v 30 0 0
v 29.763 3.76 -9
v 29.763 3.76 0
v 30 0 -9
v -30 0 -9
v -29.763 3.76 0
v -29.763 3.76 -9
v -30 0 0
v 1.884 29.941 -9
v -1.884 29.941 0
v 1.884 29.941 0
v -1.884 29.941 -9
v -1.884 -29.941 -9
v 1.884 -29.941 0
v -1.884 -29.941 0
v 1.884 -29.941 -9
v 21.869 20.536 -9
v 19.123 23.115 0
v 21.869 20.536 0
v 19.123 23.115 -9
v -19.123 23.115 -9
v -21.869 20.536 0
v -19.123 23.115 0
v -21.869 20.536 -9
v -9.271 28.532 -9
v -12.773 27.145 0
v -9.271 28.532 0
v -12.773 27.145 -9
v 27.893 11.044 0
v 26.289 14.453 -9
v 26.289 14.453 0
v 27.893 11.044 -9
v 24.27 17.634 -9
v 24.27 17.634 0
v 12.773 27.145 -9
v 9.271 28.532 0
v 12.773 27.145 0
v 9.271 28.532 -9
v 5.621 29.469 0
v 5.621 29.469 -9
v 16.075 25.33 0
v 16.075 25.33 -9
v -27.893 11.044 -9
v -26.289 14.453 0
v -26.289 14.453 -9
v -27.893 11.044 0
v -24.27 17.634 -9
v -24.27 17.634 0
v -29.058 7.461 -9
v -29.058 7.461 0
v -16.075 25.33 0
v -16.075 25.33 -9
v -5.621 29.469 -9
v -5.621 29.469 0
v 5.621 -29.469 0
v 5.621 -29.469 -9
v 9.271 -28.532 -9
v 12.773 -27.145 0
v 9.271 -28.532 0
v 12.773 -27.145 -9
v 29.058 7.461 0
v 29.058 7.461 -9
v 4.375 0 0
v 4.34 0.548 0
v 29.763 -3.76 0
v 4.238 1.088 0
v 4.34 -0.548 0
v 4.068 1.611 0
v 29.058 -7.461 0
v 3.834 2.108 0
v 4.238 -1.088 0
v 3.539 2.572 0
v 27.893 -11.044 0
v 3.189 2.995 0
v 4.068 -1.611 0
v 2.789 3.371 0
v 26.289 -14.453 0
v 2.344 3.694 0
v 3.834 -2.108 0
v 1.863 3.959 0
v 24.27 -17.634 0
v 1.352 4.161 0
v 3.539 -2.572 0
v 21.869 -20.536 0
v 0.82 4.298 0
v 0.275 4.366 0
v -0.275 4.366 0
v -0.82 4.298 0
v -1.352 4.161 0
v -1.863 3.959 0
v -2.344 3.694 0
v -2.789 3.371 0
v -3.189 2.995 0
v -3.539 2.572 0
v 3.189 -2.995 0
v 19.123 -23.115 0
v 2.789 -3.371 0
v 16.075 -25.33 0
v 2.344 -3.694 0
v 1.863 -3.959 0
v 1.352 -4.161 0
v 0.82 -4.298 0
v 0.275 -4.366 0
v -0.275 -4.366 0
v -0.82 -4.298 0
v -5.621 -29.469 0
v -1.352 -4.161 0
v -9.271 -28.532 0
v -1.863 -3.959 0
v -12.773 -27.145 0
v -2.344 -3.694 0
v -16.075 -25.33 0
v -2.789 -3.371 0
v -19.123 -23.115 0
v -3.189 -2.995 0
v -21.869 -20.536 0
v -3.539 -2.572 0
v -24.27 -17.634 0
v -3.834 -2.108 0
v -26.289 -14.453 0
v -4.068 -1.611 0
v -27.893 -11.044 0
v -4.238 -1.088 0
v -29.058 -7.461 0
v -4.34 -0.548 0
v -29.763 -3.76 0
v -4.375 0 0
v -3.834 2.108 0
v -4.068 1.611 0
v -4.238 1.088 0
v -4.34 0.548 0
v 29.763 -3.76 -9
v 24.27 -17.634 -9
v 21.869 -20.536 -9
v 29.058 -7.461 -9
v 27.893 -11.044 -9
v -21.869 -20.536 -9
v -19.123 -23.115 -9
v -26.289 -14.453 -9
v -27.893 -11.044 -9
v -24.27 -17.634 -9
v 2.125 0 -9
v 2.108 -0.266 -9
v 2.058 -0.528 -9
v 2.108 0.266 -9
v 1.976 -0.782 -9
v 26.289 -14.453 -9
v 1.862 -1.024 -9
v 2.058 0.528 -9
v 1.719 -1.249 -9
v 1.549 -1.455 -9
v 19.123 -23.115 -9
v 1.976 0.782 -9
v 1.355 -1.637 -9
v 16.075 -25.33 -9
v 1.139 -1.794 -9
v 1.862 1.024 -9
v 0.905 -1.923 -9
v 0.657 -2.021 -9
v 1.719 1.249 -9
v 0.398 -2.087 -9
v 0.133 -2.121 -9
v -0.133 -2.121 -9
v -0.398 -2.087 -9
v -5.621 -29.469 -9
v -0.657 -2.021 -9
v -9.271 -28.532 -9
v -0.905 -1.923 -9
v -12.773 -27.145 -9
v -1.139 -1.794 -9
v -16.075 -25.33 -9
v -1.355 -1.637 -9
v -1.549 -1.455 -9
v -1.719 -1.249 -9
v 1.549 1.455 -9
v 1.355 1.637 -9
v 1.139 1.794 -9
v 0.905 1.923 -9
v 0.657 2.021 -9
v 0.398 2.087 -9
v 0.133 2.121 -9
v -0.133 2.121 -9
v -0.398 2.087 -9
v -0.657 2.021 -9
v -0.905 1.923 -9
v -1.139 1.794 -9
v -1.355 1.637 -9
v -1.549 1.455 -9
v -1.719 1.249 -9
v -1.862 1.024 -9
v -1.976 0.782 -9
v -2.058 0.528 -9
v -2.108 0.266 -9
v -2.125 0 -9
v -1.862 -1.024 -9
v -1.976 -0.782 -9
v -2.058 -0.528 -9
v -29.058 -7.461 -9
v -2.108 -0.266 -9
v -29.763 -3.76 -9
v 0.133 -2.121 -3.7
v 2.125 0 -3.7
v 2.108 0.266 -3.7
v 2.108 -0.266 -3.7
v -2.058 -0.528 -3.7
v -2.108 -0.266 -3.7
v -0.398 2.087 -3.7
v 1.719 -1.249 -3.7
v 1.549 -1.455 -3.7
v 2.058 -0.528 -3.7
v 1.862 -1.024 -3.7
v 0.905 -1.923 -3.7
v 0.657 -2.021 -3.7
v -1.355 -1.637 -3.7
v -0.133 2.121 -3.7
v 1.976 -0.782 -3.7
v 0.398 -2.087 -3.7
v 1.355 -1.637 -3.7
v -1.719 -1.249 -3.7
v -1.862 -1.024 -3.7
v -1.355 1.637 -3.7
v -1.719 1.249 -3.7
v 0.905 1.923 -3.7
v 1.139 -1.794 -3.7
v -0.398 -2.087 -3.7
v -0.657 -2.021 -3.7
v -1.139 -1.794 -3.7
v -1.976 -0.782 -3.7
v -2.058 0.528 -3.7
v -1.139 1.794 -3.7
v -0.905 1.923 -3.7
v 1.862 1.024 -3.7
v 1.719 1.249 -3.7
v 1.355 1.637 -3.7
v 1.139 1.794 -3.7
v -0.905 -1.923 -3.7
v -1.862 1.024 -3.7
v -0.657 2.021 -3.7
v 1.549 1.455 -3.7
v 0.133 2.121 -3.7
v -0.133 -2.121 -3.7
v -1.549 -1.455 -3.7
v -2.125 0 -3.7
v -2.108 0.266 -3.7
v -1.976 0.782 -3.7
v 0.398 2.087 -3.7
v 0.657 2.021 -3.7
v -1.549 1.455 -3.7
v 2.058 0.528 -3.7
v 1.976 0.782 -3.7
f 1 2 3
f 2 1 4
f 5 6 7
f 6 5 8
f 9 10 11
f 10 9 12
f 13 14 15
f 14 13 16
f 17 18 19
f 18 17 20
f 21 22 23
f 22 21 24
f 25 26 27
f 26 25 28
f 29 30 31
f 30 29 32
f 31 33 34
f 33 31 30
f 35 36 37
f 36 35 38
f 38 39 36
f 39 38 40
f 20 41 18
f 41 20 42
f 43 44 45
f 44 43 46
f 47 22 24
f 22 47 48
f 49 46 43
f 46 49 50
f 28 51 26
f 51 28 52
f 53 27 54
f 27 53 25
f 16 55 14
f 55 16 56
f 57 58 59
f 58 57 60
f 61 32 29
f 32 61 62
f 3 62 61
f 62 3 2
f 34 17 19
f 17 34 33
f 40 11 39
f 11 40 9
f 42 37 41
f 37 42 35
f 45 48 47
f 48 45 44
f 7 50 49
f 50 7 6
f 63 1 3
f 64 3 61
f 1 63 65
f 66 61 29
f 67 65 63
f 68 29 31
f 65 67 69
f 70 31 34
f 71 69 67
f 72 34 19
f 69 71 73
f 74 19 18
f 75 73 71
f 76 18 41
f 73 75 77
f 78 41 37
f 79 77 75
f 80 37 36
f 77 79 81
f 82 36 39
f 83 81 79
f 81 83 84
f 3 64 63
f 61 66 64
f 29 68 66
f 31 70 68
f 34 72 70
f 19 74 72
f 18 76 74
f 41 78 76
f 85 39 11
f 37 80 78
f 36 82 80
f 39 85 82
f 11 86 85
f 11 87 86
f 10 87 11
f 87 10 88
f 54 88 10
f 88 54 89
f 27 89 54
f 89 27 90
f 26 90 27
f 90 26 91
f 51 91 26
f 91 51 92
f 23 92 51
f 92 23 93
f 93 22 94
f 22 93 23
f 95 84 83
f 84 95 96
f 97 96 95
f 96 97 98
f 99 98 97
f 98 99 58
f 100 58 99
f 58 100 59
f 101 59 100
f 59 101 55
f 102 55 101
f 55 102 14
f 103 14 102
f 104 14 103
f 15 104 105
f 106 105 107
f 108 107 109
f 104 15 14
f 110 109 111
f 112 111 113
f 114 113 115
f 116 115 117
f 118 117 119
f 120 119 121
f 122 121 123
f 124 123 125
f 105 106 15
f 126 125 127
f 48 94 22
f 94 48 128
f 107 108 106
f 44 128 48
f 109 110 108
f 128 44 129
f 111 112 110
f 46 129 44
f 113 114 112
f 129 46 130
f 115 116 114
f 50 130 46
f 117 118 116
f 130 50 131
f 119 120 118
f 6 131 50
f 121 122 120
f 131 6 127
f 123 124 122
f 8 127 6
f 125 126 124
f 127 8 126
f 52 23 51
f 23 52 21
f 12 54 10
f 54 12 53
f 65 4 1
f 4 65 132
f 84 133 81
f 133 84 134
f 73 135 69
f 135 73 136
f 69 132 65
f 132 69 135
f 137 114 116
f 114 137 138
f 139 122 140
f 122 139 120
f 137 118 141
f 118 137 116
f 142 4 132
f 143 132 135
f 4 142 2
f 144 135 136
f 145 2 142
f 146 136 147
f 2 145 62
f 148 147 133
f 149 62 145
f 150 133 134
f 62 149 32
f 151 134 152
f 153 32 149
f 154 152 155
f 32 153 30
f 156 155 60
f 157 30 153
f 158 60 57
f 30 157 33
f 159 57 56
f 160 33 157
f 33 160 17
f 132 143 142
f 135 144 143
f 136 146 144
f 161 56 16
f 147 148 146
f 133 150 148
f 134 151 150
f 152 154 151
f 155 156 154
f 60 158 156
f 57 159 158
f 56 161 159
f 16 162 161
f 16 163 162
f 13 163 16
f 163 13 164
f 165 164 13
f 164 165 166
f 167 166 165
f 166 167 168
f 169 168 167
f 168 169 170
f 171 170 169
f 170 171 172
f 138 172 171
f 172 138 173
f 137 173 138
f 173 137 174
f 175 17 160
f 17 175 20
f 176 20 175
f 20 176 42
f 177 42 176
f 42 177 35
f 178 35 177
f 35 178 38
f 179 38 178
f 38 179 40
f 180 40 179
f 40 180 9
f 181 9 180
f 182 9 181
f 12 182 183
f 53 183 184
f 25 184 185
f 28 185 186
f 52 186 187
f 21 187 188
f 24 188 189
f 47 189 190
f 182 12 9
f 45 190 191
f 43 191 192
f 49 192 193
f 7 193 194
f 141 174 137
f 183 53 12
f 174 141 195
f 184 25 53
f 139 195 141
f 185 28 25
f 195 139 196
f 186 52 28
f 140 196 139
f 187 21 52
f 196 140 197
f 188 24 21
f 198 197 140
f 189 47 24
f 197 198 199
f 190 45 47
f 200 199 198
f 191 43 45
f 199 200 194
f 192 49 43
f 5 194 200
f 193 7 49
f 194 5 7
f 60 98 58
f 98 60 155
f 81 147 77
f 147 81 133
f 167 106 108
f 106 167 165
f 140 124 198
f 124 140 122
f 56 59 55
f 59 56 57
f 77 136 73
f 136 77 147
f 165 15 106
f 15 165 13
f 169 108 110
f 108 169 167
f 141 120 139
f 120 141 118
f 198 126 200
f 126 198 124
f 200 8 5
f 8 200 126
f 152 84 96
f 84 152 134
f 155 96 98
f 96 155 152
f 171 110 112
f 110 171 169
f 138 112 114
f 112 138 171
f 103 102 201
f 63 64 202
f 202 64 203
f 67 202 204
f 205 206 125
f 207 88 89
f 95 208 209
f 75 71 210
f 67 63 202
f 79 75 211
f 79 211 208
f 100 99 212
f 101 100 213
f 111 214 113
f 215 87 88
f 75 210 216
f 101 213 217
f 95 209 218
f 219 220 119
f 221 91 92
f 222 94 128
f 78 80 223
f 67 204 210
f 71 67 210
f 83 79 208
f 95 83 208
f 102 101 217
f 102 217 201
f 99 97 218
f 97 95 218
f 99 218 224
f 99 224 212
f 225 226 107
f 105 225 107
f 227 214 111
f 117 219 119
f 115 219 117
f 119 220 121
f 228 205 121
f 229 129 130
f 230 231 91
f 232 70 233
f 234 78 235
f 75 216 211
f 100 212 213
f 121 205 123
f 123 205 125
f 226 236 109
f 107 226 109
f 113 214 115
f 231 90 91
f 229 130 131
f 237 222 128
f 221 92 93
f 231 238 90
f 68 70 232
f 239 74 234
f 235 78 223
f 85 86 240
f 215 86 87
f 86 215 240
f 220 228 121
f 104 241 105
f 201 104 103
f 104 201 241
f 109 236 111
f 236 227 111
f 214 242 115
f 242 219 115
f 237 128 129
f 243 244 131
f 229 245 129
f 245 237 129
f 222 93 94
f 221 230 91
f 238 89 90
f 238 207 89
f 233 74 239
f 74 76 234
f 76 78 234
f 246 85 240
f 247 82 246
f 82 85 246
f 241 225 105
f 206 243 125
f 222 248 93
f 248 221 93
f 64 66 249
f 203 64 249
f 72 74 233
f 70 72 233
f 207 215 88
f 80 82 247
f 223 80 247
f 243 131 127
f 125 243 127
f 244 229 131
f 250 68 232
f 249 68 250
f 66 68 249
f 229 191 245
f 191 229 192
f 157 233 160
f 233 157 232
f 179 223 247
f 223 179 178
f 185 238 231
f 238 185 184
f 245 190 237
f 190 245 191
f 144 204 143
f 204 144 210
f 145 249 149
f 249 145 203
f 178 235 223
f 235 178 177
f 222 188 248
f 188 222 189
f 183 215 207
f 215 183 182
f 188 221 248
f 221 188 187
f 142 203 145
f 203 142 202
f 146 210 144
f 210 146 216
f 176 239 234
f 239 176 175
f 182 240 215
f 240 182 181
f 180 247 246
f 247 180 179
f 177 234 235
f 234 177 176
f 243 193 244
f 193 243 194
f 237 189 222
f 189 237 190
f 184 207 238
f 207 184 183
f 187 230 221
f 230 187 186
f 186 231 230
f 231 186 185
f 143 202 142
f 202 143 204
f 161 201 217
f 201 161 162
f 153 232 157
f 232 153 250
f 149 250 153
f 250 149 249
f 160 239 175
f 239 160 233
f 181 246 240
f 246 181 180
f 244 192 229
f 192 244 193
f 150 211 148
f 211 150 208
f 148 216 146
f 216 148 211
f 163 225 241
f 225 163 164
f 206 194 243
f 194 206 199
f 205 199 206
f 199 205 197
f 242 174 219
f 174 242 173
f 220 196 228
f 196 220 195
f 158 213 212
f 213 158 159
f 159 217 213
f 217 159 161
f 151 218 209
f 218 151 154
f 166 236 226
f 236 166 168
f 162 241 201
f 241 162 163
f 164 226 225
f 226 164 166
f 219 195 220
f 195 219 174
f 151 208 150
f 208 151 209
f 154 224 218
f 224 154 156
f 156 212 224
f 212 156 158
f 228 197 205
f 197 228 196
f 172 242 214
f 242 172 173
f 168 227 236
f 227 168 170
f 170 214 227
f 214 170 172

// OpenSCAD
$fn = 50;


difference() {
	union() {
		translate(v = [0, 0, -9.0000000000]) {
			cylinder(h = 9, r = 30.0000000000);
		}
		translate(v = [0, 0, -9.0000000000]) {
			cylinder(h = 9, r = 2.8750000000);
		}
	}
	union() {
		translate(v = [0, 0, 0]) {
			rotate(a = [0, 0, 0]) {
				difference() {
					union() {
						translate(v = [0, 0, -9.0000000000]) {
							cylinder(h = 9, r = 2.0000000000);
						}
						translate(v = [0, 0, -3.7000000000]) {
							cylinder(h = 3.7000000000, r1 = 2.1250000000, r2 = 4.3750000000);
						}
						translate(v = [0, 0, -9.0000000000]) {
							cylinder(h = 9, r = 2.1250000000);
						}
						translate(v = [0, 0, -9.0000000000]) {
							cylinder(h = 9, r = 2.0000000000);
						}
					}
					union();
				}
			}
		}
	}
}
